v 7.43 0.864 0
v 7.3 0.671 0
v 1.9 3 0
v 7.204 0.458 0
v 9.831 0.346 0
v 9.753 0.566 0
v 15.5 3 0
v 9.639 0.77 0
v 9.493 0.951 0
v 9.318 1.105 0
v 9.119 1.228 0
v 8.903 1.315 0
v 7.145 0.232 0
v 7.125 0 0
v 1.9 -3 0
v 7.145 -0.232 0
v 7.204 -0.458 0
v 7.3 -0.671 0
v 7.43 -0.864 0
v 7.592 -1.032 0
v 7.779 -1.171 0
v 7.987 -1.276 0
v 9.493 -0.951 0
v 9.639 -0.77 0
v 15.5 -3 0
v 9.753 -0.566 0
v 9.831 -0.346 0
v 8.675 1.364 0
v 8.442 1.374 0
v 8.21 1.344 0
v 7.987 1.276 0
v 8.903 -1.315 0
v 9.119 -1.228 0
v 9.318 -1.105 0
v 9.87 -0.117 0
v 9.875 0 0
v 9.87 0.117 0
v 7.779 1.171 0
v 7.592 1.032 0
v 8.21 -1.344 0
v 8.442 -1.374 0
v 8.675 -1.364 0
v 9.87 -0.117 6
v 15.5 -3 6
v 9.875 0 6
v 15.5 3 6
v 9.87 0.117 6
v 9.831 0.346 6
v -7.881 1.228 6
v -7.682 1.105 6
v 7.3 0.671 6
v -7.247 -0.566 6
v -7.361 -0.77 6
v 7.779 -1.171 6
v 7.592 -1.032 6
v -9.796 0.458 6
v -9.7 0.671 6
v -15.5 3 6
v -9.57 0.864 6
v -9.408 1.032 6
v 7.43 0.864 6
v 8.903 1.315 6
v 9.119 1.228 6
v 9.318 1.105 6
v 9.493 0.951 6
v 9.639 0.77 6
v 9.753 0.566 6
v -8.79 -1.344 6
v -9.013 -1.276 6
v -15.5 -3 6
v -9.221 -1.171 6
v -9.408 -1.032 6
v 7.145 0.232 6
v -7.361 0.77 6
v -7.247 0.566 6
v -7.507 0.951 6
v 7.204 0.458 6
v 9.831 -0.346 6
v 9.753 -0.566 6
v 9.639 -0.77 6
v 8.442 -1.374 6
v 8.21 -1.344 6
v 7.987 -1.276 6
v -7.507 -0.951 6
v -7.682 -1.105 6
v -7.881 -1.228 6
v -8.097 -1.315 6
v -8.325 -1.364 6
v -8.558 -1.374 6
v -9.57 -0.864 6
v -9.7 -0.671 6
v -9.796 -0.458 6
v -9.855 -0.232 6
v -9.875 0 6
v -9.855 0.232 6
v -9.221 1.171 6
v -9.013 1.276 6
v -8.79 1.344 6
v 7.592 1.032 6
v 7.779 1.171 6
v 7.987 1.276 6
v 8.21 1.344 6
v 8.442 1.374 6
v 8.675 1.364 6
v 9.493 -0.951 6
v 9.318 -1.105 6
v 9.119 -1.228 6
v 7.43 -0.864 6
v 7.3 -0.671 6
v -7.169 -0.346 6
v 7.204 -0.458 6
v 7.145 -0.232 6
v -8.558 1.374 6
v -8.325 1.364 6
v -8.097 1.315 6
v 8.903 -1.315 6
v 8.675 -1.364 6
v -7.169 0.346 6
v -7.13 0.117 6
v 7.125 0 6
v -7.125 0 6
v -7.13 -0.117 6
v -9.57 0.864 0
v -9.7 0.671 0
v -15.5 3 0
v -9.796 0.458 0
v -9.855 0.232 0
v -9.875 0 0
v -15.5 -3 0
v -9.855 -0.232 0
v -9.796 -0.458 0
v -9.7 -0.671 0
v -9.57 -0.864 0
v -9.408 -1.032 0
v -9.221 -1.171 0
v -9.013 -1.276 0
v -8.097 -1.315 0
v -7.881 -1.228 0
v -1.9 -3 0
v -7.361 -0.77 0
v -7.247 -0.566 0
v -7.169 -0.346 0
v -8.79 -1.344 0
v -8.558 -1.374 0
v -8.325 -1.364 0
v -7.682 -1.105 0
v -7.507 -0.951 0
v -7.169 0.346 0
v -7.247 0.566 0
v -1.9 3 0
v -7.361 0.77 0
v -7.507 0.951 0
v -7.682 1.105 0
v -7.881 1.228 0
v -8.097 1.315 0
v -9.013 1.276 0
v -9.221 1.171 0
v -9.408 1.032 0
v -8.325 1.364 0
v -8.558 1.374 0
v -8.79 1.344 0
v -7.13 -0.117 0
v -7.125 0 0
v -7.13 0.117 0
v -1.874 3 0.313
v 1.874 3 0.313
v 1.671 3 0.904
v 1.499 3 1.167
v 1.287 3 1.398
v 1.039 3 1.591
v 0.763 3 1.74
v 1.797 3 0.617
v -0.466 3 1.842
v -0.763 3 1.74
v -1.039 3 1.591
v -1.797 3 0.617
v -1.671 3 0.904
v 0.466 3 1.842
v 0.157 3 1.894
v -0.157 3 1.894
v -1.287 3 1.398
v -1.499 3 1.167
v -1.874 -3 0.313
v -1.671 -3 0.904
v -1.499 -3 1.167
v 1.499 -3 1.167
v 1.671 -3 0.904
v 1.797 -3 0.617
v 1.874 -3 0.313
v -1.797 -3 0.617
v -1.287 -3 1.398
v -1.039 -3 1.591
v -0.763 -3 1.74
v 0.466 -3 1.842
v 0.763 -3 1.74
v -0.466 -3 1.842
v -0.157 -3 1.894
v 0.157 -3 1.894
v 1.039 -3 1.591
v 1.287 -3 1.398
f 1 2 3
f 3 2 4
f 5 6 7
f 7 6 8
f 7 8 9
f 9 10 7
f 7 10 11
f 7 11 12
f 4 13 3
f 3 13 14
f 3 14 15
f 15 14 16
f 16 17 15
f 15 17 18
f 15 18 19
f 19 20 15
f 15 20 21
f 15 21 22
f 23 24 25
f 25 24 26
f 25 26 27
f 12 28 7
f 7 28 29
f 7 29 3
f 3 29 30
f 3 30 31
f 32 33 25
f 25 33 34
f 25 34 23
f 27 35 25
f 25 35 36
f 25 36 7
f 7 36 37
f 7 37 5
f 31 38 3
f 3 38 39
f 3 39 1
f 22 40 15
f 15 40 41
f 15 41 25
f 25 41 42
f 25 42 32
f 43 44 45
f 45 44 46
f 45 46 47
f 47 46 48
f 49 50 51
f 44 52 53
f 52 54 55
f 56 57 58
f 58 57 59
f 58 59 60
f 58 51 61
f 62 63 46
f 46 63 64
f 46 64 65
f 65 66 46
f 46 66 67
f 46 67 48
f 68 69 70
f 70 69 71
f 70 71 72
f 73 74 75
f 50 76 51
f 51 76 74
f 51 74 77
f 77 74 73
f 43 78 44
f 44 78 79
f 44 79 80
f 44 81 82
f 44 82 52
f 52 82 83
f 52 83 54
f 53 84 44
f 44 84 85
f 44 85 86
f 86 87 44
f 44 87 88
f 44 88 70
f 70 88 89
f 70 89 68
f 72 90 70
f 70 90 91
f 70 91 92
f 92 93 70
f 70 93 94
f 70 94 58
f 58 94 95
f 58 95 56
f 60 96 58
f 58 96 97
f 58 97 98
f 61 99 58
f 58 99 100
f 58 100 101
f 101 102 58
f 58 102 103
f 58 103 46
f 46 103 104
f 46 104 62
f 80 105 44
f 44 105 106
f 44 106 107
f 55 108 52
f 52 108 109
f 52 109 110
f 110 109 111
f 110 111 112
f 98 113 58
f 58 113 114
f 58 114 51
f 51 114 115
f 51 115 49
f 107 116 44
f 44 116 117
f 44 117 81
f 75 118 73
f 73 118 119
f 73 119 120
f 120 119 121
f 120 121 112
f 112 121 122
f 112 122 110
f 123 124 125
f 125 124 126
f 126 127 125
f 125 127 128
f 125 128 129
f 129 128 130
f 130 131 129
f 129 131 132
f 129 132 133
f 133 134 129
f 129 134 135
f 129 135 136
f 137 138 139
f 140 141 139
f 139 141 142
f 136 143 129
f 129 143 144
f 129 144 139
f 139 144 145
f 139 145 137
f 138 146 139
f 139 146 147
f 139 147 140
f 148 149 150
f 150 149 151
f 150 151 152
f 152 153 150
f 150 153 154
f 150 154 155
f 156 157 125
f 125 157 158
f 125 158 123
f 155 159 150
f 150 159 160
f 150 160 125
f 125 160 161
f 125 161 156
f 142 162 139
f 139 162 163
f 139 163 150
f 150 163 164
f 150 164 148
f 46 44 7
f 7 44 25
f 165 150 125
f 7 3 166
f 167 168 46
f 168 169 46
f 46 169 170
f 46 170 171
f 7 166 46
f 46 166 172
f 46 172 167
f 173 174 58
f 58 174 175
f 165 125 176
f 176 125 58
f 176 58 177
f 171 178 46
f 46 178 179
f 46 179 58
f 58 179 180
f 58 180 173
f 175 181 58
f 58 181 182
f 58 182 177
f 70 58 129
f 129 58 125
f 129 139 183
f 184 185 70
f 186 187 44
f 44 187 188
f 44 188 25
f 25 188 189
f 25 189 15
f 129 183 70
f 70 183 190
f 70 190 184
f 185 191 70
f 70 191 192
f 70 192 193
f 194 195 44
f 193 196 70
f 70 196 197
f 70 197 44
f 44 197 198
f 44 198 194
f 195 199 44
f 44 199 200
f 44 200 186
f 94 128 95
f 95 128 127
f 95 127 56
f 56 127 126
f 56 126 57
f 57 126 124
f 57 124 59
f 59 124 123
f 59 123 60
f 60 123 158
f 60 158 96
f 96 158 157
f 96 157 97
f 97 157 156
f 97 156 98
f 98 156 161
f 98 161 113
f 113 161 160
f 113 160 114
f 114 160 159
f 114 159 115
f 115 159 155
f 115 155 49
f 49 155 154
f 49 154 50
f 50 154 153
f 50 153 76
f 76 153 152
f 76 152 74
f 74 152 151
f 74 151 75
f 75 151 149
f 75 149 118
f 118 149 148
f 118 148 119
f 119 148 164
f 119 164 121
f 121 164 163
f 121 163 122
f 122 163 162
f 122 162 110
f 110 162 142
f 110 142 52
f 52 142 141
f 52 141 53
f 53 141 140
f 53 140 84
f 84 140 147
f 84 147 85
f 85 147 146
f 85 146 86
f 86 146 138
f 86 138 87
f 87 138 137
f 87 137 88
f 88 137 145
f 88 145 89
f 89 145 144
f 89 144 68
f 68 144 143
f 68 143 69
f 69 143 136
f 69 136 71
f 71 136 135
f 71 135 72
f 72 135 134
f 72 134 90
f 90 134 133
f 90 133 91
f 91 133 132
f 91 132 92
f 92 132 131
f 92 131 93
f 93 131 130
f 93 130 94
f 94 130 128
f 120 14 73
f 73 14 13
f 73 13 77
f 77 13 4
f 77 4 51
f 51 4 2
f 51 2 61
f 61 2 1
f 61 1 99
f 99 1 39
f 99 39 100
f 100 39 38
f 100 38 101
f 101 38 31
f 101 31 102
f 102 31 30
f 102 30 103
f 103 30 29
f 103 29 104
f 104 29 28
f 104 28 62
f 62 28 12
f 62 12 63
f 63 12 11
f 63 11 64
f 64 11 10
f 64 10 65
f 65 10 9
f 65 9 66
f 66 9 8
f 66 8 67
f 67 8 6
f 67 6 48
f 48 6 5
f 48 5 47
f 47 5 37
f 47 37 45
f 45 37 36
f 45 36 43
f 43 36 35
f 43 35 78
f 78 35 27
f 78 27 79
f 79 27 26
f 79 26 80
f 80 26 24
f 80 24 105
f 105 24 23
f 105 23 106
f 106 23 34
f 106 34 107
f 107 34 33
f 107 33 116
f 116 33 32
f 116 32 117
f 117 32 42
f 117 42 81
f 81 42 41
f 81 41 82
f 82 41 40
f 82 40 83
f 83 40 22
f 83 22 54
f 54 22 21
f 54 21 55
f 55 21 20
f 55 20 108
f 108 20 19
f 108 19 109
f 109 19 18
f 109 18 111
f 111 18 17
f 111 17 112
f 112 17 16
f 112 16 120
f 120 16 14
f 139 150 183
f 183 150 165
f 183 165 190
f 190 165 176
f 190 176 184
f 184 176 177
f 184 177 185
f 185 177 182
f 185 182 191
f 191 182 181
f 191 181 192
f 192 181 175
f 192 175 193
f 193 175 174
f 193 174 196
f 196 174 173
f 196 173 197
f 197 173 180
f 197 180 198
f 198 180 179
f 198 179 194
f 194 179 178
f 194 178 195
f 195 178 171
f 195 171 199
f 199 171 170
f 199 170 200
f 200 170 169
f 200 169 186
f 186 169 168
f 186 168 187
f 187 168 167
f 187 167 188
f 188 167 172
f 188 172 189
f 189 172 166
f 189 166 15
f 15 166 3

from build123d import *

# Parameters (mm, degrees)
SKETCH1_W        = 31
SKETCH1_H        = 6
SKETCH1_R        = 1.375
BASE_DEPTH       = 6
WIRE_GROVE_DEPTH = 18.670597047


with BuildPart() as part:
    # Sketch1 → Base (new body)
    with BuildSketch(Plane.XY):
        Rectangle(SKETCH1_W, SKETCH1_H)
        with Locations((-8.5, 0)):
            Circle(SKETCH1_R, mode=Mode.SUBTRACT)
        with Locations((8.5, 0)):
            Circle(SKETCH1_R, mode=Mode.SUBTRACT)
    extrude(amount=BASE_DEPTH)

    # Sketch2 → Wire Grove (cut, through all)
    with BuildSketch(Plane(origin=(0, 3, 0), x_dir=(1, 0, 0), z_dir=(0, 1, 0))):
        with BuildLine():
            Line((-1.9, 0), (1.9, 0))
            ThreePointArc((1.9, 0), (0, -1.9), (-1.9, 0))
        make_face()
    extrude(amount=-WIRE_GROVE_DEPTH, mode=Mode.SUBTRACT)


solid = part.part
